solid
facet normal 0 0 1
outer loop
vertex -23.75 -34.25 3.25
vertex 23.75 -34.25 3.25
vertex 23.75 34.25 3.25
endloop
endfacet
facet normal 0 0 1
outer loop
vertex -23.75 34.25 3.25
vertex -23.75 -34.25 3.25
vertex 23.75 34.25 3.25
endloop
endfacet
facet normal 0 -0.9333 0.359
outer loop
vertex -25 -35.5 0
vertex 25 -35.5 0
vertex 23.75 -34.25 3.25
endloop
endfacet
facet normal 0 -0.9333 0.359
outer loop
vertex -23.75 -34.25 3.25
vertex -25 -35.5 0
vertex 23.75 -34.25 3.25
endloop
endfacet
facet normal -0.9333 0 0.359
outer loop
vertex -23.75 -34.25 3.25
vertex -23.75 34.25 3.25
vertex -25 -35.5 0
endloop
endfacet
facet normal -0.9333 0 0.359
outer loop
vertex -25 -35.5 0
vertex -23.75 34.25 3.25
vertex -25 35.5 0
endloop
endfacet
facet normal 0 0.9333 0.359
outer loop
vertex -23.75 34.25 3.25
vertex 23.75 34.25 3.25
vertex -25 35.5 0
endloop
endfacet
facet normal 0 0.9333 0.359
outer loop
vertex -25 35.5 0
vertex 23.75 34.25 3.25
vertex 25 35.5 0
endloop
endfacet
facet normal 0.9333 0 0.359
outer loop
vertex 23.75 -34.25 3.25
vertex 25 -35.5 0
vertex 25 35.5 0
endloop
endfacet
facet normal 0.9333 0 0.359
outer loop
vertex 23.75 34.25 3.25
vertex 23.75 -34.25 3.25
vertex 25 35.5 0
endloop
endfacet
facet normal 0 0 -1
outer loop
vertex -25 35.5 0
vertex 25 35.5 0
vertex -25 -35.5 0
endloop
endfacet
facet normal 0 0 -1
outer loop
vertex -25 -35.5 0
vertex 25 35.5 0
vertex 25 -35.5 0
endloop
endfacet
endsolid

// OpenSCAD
// A 'close to' 75mm x 50mm for a certain game

module 75x50base() {
  polyhedron(
    points=[ [25,35.5,0],[25,-35.5,0],[-25,-35.5,0],[-25,35.5,0],
                  [23.75,34.25,3.25], [23.75,-34.25,3.25],[-23.75,-34.25,3.25],[-23.75,34.25,3.25] ], 
    triangles=[ [1,2,6],[1,6,5],[6,2,3],[6,3,7],              
                      [3,4,7],[3,0,4],[4,0,1],[4,1,5],
                      [1,0,3],[1,3,2], [4,5,7],[5,6,7] ] 
  );
}
75x50base();
